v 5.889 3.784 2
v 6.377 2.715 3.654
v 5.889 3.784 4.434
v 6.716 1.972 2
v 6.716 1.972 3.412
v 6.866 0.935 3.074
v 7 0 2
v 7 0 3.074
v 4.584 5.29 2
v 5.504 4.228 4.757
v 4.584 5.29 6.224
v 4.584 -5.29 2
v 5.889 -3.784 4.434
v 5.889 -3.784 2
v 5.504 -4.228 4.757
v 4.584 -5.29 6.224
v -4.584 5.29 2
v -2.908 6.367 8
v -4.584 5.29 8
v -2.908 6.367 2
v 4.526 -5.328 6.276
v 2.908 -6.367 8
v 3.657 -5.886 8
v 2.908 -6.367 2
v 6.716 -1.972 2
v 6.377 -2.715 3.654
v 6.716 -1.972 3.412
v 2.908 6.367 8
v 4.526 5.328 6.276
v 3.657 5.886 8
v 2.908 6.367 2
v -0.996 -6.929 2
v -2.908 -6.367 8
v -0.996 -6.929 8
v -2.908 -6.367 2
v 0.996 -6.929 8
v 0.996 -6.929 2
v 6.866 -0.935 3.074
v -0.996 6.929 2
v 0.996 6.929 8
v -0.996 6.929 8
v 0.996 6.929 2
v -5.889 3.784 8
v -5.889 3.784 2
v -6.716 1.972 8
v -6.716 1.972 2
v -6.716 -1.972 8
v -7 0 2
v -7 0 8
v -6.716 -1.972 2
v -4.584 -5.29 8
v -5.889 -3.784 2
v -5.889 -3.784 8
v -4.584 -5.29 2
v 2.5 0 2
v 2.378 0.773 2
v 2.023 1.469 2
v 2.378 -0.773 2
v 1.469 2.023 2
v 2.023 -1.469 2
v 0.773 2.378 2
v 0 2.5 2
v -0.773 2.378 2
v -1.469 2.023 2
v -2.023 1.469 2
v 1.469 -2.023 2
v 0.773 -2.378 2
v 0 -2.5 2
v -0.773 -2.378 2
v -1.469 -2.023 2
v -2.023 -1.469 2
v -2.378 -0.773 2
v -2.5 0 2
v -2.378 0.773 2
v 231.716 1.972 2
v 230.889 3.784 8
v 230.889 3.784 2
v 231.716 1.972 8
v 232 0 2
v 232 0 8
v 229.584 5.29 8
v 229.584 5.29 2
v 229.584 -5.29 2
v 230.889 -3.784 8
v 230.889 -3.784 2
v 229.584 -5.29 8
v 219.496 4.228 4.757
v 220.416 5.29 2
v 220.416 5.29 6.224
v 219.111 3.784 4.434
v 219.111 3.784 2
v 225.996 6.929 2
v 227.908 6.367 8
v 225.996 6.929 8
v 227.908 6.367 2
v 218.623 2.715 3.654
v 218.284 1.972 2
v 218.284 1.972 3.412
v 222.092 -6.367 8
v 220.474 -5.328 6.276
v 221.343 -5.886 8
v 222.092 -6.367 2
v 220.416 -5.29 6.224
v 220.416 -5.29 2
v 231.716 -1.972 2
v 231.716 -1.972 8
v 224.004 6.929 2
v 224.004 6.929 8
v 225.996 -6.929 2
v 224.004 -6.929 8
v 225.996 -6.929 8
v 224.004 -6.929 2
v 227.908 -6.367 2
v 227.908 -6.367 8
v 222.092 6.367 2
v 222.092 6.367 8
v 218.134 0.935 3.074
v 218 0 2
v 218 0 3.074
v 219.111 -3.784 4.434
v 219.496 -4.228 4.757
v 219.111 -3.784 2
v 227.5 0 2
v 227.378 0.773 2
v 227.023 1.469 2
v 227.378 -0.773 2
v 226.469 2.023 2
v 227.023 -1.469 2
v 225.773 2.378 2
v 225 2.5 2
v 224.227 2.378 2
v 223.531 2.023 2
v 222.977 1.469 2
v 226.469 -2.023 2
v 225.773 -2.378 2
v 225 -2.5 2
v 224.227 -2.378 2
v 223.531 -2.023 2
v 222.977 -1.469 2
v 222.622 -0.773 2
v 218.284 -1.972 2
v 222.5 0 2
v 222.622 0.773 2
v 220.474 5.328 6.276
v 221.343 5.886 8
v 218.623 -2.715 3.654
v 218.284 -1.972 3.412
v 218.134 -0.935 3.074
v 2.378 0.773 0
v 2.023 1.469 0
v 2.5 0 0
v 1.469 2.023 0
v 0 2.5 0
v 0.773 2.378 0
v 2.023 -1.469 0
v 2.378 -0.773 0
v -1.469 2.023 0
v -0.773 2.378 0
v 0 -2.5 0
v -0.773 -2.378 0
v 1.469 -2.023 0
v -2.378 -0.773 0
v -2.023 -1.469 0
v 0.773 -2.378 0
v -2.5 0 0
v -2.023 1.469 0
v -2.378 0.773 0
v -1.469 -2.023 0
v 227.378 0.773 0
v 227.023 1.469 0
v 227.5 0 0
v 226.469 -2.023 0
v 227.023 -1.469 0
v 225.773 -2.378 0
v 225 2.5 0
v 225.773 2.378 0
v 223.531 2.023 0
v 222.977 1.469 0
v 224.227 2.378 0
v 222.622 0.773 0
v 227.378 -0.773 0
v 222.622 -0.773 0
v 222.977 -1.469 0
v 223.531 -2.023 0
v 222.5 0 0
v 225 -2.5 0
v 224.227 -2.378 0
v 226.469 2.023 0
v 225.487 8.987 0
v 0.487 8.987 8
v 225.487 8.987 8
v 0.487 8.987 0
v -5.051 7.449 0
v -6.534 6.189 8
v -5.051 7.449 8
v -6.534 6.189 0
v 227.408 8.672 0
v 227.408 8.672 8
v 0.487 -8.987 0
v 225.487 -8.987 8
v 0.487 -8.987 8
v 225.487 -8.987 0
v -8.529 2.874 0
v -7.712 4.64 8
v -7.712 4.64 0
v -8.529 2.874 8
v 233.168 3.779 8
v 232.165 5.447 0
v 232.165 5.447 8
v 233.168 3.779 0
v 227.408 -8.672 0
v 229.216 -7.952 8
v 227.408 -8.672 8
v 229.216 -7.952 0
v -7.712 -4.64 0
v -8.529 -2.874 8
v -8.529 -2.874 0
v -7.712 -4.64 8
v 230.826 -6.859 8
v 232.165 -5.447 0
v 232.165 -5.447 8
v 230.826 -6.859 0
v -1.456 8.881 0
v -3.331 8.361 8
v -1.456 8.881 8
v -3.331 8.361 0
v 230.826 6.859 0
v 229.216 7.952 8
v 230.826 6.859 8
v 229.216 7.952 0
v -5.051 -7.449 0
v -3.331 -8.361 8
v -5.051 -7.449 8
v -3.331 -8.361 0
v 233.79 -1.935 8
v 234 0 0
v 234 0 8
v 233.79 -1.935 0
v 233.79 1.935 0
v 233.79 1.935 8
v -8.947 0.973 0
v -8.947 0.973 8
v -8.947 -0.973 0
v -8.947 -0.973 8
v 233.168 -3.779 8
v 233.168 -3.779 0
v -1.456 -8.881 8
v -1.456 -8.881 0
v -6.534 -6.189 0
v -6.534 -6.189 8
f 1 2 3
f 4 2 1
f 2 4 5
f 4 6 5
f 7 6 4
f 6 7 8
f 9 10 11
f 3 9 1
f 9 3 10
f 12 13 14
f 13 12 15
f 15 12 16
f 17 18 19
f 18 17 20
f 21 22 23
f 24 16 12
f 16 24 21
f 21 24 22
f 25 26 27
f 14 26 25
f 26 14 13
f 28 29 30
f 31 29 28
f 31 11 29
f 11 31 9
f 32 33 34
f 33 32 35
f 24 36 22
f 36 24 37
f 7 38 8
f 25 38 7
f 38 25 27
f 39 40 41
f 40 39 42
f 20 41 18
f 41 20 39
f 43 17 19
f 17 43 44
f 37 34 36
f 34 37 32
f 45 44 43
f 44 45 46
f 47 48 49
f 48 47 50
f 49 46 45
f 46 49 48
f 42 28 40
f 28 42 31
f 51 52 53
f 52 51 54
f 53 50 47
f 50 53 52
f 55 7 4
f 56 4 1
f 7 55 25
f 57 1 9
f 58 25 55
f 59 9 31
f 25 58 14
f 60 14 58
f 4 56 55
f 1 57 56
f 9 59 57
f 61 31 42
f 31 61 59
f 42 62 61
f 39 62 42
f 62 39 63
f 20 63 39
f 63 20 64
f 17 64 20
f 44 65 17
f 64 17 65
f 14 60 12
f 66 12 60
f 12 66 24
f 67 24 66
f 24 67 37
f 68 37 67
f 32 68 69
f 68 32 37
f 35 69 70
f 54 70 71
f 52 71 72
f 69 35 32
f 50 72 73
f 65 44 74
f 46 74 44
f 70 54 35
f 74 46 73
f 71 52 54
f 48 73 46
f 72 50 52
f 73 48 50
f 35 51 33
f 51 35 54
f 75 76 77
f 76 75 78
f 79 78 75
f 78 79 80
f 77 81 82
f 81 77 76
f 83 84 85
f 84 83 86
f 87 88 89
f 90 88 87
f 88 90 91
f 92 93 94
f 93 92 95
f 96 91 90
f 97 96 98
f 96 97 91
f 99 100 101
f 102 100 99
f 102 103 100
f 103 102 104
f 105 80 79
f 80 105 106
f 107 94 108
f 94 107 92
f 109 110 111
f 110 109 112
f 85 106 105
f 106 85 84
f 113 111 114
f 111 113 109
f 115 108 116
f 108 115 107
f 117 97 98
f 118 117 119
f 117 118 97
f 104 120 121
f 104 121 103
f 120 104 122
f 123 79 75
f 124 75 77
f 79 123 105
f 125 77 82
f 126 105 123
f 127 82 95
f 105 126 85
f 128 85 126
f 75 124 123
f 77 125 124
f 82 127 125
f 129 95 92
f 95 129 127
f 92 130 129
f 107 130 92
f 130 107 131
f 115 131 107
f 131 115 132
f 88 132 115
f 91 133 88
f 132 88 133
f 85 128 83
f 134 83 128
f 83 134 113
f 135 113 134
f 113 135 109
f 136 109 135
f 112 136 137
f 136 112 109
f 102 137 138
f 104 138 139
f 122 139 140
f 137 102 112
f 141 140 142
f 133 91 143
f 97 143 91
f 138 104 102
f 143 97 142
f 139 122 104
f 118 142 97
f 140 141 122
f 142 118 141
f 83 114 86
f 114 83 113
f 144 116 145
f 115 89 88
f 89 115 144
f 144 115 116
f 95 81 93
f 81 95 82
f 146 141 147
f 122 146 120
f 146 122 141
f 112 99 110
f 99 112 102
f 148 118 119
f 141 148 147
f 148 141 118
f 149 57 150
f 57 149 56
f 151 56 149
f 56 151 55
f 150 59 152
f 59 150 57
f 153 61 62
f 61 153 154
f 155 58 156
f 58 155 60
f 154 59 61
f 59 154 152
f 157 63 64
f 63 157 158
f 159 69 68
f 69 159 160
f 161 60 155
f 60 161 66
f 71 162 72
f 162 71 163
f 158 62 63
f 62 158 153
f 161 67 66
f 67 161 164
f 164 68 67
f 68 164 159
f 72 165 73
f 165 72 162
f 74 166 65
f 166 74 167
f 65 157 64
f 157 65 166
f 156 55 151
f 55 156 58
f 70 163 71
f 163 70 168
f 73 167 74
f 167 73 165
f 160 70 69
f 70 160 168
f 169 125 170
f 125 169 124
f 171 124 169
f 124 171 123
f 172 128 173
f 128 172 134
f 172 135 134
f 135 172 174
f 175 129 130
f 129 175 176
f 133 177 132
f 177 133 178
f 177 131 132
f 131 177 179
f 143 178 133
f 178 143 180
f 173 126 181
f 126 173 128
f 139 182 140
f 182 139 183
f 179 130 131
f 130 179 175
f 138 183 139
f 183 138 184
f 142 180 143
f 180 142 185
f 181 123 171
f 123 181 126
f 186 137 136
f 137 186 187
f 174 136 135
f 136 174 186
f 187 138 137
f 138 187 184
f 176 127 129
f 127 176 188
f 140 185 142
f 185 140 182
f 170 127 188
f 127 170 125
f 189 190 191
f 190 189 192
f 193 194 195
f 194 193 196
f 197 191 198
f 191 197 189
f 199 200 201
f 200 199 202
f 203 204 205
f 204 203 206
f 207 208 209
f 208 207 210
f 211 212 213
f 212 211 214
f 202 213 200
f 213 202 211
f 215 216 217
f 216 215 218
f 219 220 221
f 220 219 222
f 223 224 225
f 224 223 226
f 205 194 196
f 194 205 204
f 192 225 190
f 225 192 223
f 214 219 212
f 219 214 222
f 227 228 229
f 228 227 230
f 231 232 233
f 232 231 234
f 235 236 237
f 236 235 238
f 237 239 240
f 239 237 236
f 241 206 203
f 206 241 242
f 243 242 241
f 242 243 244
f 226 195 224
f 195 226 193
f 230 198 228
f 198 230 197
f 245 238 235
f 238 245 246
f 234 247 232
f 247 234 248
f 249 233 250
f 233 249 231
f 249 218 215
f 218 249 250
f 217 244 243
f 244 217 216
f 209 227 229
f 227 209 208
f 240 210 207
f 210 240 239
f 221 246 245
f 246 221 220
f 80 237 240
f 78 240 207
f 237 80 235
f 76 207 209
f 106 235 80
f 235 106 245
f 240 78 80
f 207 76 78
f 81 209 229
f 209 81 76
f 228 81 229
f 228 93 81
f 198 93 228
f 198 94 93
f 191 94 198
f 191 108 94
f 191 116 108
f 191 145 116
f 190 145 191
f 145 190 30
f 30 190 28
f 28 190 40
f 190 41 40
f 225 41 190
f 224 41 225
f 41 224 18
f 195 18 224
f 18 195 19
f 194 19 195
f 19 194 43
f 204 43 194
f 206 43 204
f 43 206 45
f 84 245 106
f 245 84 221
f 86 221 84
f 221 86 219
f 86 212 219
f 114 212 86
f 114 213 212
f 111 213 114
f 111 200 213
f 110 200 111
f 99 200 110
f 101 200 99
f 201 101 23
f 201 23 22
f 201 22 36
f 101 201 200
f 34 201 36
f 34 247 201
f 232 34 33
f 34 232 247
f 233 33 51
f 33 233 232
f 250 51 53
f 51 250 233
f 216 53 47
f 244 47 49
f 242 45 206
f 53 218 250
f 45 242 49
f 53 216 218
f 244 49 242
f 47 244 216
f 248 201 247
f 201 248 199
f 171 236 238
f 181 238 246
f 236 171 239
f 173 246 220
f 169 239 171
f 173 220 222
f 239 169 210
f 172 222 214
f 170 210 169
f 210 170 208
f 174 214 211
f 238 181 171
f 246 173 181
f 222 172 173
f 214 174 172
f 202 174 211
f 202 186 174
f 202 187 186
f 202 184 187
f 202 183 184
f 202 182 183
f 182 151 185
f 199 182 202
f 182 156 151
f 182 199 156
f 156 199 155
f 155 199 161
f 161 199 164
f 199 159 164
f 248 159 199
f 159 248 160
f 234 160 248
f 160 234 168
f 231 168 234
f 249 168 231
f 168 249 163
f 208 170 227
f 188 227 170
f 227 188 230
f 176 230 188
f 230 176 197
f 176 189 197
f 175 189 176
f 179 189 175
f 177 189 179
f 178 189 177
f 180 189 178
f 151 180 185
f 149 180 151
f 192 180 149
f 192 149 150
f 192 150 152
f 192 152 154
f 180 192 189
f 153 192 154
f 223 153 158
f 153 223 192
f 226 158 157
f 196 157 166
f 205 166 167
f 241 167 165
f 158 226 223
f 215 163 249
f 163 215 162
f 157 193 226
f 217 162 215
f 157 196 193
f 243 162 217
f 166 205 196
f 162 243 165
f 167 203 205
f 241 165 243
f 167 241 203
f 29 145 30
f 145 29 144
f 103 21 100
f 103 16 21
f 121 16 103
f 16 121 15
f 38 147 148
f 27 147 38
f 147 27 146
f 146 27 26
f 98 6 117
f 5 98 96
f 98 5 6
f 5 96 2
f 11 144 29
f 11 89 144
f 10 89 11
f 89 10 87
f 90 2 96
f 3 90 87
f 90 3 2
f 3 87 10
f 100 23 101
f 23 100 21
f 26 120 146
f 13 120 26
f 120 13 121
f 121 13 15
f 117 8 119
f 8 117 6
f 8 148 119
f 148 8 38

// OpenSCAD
e=.001;

d = 225;

hole_d=5;

r=9;
border=2;

thickness=8;

module at_holes()
{
	children();
	translate([d,0,0])
	children();
}


module stay()
{
	difference()
	{
		hull()
		at_holes()
		cylinder(h=thickness, r=r);

		at_holes()
		translate([0,0,border])
		cylinder(h=thickness, r=r-border);

		hull()
		at_holes()
		translate([0,0,r])
		sphere(r=thickness-border);

		at_holes()
		translate([0,0,-e])
		cylinder(h=thickness+e*2, d=hole_d, $fn=20);
}
}

stay();
